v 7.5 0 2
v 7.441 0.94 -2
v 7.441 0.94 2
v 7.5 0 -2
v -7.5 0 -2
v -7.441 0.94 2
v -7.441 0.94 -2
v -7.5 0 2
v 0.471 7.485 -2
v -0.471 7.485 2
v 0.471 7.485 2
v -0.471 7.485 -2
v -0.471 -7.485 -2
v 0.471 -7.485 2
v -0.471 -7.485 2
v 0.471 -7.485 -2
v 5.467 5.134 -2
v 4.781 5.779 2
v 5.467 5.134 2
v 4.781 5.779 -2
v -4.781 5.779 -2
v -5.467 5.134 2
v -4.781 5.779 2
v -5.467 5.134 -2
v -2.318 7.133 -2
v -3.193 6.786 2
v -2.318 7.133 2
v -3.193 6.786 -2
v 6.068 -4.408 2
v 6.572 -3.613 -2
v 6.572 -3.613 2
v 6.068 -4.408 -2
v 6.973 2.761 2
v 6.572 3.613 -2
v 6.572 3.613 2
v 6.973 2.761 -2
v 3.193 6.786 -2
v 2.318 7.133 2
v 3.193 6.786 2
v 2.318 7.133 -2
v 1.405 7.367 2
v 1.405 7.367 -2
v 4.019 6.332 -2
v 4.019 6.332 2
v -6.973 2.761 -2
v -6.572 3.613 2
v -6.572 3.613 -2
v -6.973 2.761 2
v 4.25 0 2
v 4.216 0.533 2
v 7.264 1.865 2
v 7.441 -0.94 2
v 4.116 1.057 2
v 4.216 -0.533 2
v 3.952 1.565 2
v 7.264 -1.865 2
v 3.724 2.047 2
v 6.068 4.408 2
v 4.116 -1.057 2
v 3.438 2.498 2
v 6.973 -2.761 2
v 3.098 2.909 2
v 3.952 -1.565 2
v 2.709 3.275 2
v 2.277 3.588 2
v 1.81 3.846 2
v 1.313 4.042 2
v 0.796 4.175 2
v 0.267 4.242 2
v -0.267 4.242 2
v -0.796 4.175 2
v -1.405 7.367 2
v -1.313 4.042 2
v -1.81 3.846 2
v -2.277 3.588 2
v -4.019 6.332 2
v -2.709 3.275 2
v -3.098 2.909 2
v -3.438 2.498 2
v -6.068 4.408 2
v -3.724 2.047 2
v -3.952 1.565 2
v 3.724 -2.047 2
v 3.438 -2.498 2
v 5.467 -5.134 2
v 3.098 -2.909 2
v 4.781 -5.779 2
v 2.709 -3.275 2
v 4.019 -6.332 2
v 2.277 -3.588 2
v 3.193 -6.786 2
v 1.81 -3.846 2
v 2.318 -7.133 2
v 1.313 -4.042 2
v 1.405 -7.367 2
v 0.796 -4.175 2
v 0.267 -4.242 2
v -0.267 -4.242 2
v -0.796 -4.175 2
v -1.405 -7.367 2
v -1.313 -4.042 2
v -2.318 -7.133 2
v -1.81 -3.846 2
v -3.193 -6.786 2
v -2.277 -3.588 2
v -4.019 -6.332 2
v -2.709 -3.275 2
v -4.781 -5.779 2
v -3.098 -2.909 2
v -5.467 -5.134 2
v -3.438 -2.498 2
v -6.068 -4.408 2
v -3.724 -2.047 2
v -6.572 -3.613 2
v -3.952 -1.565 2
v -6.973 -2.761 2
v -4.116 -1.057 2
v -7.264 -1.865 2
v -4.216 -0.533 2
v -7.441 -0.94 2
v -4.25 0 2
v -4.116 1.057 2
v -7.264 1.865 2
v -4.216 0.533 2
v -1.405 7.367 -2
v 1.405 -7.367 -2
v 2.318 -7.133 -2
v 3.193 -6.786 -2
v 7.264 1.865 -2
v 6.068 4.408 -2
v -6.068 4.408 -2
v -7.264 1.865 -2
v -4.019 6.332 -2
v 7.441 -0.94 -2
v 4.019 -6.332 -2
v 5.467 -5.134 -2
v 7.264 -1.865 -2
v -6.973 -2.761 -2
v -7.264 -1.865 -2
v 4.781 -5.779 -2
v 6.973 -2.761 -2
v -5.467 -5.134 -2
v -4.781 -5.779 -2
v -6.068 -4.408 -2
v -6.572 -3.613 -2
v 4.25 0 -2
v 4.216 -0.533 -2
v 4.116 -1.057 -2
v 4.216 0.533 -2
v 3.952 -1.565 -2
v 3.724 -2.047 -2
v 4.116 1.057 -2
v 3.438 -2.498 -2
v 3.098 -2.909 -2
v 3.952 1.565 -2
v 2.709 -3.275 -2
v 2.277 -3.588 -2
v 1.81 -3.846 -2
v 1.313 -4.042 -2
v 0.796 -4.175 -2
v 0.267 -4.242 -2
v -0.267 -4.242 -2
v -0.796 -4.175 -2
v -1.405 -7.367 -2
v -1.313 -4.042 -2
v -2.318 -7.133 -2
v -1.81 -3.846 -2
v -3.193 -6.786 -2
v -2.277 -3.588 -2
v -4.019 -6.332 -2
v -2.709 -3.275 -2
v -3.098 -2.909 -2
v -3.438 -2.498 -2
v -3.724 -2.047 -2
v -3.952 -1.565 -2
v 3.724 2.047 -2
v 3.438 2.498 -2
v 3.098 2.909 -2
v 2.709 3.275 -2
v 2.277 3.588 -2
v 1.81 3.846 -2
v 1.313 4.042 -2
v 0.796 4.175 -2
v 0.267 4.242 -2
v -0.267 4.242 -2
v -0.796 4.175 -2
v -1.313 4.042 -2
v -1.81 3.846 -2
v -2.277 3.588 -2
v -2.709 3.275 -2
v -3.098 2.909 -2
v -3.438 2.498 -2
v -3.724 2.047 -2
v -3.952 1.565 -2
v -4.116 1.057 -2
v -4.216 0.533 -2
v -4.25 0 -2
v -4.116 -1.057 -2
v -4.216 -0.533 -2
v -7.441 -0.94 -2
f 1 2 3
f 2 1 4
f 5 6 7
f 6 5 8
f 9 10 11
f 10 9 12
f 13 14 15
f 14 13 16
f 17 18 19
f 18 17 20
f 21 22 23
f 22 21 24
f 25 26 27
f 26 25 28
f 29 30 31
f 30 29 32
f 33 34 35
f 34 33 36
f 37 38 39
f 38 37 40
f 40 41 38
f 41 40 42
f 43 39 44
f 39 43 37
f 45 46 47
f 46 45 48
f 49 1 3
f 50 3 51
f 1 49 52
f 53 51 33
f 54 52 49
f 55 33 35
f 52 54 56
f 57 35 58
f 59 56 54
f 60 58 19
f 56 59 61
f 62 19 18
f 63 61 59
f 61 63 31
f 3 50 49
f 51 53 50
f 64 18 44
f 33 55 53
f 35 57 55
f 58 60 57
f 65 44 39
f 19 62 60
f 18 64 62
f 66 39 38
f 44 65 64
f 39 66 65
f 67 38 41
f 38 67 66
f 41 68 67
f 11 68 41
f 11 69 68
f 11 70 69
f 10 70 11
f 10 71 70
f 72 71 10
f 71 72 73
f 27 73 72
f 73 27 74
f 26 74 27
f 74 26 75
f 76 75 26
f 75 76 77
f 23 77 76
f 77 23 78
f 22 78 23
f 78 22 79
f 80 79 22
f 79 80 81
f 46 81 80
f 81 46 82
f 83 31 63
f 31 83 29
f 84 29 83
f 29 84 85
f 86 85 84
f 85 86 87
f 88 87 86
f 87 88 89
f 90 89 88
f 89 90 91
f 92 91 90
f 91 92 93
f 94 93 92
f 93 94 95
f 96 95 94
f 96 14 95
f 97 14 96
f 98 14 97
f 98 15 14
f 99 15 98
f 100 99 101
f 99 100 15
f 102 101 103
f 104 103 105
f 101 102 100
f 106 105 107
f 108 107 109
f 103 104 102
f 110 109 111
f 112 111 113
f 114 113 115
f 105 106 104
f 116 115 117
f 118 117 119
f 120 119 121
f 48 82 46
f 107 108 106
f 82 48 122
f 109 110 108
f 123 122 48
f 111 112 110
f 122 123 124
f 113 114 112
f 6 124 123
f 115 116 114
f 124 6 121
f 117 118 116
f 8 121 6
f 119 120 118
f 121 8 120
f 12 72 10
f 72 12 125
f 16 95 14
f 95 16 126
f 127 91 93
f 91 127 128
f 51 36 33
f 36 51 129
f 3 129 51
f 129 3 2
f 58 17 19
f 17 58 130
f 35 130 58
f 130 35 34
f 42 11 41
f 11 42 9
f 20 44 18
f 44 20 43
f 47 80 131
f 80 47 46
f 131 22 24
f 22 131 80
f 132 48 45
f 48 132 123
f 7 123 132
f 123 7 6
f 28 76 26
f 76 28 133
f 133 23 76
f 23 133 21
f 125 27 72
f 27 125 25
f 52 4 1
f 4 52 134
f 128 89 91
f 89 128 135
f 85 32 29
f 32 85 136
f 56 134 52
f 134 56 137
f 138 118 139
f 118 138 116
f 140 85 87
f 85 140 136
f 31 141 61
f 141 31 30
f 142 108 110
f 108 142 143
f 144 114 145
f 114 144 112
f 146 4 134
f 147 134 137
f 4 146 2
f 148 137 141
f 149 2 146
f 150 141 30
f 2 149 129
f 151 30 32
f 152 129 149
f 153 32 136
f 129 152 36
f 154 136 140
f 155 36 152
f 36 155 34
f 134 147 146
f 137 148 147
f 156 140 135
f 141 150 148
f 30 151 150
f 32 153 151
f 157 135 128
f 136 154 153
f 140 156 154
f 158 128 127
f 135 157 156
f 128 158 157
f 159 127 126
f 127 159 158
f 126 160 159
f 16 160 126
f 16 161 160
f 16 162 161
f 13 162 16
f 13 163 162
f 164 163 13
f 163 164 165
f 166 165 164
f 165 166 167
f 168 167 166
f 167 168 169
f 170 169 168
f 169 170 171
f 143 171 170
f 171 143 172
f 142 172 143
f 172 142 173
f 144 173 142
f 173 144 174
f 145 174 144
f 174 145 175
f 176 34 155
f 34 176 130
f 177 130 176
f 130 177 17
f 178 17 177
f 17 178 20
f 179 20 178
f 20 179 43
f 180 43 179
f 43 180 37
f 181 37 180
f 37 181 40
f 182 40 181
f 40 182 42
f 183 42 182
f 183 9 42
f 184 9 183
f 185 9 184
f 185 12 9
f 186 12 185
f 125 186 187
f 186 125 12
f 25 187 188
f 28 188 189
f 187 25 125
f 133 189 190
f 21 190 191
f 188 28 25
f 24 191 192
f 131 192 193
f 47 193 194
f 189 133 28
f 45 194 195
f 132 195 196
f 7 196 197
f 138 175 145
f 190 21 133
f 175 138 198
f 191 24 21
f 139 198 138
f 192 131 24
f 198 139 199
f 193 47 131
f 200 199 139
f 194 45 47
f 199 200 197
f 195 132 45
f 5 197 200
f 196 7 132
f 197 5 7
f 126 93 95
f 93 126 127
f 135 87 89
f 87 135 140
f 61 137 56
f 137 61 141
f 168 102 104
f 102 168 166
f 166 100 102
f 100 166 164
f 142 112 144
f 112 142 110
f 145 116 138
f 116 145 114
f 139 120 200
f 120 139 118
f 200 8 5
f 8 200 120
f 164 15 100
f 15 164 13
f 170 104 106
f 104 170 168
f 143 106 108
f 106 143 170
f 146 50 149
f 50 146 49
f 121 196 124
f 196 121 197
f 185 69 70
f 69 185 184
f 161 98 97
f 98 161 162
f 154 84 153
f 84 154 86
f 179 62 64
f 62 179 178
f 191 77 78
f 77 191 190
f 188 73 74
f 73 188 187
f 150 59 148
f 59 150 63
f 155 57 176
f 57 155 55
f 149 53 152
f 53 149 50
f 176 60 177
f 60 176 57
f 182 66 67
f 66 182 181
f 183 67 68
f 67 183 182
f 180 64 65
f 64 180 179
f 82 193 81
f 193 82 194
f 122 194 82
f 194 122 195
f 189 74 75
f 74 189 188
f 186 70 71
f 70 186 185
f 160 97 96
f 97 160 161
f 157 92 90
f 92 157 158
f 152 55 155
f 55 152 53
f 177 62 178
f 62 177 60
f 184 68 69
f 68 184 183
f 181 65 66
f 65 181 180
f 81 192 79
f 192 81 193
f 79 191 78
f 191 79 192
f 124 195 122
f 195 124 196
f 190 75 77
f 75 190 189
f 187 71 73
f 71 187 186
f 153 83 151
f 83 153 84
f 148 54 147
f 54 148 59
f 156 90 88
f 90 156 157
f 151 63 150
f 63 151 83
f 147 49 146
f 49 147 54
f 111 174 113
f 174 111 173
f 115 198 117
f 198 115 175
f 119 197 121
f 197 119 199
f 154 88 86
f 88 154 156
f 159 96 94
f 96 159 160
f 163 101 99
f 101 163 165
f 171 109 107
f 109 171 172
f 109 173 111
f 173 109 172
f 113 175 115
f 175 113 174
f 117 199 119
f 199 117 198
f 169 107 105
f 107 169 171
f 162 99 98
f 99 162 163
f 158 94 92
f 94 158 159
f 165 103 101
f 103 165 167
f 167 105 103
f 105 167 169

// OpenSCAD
$fn = 50;


difference() {
	union() {
		translate(v = [0, 0, -2.0000000000]) {
			cylinder(h = 4, r = 7.5000000000);
		}
	}
	union() {
		translate(v = [0, 0, -100.0000000000]) {
			cylinder(h = 200, r = 4.2500000000);
		}
	}
}
